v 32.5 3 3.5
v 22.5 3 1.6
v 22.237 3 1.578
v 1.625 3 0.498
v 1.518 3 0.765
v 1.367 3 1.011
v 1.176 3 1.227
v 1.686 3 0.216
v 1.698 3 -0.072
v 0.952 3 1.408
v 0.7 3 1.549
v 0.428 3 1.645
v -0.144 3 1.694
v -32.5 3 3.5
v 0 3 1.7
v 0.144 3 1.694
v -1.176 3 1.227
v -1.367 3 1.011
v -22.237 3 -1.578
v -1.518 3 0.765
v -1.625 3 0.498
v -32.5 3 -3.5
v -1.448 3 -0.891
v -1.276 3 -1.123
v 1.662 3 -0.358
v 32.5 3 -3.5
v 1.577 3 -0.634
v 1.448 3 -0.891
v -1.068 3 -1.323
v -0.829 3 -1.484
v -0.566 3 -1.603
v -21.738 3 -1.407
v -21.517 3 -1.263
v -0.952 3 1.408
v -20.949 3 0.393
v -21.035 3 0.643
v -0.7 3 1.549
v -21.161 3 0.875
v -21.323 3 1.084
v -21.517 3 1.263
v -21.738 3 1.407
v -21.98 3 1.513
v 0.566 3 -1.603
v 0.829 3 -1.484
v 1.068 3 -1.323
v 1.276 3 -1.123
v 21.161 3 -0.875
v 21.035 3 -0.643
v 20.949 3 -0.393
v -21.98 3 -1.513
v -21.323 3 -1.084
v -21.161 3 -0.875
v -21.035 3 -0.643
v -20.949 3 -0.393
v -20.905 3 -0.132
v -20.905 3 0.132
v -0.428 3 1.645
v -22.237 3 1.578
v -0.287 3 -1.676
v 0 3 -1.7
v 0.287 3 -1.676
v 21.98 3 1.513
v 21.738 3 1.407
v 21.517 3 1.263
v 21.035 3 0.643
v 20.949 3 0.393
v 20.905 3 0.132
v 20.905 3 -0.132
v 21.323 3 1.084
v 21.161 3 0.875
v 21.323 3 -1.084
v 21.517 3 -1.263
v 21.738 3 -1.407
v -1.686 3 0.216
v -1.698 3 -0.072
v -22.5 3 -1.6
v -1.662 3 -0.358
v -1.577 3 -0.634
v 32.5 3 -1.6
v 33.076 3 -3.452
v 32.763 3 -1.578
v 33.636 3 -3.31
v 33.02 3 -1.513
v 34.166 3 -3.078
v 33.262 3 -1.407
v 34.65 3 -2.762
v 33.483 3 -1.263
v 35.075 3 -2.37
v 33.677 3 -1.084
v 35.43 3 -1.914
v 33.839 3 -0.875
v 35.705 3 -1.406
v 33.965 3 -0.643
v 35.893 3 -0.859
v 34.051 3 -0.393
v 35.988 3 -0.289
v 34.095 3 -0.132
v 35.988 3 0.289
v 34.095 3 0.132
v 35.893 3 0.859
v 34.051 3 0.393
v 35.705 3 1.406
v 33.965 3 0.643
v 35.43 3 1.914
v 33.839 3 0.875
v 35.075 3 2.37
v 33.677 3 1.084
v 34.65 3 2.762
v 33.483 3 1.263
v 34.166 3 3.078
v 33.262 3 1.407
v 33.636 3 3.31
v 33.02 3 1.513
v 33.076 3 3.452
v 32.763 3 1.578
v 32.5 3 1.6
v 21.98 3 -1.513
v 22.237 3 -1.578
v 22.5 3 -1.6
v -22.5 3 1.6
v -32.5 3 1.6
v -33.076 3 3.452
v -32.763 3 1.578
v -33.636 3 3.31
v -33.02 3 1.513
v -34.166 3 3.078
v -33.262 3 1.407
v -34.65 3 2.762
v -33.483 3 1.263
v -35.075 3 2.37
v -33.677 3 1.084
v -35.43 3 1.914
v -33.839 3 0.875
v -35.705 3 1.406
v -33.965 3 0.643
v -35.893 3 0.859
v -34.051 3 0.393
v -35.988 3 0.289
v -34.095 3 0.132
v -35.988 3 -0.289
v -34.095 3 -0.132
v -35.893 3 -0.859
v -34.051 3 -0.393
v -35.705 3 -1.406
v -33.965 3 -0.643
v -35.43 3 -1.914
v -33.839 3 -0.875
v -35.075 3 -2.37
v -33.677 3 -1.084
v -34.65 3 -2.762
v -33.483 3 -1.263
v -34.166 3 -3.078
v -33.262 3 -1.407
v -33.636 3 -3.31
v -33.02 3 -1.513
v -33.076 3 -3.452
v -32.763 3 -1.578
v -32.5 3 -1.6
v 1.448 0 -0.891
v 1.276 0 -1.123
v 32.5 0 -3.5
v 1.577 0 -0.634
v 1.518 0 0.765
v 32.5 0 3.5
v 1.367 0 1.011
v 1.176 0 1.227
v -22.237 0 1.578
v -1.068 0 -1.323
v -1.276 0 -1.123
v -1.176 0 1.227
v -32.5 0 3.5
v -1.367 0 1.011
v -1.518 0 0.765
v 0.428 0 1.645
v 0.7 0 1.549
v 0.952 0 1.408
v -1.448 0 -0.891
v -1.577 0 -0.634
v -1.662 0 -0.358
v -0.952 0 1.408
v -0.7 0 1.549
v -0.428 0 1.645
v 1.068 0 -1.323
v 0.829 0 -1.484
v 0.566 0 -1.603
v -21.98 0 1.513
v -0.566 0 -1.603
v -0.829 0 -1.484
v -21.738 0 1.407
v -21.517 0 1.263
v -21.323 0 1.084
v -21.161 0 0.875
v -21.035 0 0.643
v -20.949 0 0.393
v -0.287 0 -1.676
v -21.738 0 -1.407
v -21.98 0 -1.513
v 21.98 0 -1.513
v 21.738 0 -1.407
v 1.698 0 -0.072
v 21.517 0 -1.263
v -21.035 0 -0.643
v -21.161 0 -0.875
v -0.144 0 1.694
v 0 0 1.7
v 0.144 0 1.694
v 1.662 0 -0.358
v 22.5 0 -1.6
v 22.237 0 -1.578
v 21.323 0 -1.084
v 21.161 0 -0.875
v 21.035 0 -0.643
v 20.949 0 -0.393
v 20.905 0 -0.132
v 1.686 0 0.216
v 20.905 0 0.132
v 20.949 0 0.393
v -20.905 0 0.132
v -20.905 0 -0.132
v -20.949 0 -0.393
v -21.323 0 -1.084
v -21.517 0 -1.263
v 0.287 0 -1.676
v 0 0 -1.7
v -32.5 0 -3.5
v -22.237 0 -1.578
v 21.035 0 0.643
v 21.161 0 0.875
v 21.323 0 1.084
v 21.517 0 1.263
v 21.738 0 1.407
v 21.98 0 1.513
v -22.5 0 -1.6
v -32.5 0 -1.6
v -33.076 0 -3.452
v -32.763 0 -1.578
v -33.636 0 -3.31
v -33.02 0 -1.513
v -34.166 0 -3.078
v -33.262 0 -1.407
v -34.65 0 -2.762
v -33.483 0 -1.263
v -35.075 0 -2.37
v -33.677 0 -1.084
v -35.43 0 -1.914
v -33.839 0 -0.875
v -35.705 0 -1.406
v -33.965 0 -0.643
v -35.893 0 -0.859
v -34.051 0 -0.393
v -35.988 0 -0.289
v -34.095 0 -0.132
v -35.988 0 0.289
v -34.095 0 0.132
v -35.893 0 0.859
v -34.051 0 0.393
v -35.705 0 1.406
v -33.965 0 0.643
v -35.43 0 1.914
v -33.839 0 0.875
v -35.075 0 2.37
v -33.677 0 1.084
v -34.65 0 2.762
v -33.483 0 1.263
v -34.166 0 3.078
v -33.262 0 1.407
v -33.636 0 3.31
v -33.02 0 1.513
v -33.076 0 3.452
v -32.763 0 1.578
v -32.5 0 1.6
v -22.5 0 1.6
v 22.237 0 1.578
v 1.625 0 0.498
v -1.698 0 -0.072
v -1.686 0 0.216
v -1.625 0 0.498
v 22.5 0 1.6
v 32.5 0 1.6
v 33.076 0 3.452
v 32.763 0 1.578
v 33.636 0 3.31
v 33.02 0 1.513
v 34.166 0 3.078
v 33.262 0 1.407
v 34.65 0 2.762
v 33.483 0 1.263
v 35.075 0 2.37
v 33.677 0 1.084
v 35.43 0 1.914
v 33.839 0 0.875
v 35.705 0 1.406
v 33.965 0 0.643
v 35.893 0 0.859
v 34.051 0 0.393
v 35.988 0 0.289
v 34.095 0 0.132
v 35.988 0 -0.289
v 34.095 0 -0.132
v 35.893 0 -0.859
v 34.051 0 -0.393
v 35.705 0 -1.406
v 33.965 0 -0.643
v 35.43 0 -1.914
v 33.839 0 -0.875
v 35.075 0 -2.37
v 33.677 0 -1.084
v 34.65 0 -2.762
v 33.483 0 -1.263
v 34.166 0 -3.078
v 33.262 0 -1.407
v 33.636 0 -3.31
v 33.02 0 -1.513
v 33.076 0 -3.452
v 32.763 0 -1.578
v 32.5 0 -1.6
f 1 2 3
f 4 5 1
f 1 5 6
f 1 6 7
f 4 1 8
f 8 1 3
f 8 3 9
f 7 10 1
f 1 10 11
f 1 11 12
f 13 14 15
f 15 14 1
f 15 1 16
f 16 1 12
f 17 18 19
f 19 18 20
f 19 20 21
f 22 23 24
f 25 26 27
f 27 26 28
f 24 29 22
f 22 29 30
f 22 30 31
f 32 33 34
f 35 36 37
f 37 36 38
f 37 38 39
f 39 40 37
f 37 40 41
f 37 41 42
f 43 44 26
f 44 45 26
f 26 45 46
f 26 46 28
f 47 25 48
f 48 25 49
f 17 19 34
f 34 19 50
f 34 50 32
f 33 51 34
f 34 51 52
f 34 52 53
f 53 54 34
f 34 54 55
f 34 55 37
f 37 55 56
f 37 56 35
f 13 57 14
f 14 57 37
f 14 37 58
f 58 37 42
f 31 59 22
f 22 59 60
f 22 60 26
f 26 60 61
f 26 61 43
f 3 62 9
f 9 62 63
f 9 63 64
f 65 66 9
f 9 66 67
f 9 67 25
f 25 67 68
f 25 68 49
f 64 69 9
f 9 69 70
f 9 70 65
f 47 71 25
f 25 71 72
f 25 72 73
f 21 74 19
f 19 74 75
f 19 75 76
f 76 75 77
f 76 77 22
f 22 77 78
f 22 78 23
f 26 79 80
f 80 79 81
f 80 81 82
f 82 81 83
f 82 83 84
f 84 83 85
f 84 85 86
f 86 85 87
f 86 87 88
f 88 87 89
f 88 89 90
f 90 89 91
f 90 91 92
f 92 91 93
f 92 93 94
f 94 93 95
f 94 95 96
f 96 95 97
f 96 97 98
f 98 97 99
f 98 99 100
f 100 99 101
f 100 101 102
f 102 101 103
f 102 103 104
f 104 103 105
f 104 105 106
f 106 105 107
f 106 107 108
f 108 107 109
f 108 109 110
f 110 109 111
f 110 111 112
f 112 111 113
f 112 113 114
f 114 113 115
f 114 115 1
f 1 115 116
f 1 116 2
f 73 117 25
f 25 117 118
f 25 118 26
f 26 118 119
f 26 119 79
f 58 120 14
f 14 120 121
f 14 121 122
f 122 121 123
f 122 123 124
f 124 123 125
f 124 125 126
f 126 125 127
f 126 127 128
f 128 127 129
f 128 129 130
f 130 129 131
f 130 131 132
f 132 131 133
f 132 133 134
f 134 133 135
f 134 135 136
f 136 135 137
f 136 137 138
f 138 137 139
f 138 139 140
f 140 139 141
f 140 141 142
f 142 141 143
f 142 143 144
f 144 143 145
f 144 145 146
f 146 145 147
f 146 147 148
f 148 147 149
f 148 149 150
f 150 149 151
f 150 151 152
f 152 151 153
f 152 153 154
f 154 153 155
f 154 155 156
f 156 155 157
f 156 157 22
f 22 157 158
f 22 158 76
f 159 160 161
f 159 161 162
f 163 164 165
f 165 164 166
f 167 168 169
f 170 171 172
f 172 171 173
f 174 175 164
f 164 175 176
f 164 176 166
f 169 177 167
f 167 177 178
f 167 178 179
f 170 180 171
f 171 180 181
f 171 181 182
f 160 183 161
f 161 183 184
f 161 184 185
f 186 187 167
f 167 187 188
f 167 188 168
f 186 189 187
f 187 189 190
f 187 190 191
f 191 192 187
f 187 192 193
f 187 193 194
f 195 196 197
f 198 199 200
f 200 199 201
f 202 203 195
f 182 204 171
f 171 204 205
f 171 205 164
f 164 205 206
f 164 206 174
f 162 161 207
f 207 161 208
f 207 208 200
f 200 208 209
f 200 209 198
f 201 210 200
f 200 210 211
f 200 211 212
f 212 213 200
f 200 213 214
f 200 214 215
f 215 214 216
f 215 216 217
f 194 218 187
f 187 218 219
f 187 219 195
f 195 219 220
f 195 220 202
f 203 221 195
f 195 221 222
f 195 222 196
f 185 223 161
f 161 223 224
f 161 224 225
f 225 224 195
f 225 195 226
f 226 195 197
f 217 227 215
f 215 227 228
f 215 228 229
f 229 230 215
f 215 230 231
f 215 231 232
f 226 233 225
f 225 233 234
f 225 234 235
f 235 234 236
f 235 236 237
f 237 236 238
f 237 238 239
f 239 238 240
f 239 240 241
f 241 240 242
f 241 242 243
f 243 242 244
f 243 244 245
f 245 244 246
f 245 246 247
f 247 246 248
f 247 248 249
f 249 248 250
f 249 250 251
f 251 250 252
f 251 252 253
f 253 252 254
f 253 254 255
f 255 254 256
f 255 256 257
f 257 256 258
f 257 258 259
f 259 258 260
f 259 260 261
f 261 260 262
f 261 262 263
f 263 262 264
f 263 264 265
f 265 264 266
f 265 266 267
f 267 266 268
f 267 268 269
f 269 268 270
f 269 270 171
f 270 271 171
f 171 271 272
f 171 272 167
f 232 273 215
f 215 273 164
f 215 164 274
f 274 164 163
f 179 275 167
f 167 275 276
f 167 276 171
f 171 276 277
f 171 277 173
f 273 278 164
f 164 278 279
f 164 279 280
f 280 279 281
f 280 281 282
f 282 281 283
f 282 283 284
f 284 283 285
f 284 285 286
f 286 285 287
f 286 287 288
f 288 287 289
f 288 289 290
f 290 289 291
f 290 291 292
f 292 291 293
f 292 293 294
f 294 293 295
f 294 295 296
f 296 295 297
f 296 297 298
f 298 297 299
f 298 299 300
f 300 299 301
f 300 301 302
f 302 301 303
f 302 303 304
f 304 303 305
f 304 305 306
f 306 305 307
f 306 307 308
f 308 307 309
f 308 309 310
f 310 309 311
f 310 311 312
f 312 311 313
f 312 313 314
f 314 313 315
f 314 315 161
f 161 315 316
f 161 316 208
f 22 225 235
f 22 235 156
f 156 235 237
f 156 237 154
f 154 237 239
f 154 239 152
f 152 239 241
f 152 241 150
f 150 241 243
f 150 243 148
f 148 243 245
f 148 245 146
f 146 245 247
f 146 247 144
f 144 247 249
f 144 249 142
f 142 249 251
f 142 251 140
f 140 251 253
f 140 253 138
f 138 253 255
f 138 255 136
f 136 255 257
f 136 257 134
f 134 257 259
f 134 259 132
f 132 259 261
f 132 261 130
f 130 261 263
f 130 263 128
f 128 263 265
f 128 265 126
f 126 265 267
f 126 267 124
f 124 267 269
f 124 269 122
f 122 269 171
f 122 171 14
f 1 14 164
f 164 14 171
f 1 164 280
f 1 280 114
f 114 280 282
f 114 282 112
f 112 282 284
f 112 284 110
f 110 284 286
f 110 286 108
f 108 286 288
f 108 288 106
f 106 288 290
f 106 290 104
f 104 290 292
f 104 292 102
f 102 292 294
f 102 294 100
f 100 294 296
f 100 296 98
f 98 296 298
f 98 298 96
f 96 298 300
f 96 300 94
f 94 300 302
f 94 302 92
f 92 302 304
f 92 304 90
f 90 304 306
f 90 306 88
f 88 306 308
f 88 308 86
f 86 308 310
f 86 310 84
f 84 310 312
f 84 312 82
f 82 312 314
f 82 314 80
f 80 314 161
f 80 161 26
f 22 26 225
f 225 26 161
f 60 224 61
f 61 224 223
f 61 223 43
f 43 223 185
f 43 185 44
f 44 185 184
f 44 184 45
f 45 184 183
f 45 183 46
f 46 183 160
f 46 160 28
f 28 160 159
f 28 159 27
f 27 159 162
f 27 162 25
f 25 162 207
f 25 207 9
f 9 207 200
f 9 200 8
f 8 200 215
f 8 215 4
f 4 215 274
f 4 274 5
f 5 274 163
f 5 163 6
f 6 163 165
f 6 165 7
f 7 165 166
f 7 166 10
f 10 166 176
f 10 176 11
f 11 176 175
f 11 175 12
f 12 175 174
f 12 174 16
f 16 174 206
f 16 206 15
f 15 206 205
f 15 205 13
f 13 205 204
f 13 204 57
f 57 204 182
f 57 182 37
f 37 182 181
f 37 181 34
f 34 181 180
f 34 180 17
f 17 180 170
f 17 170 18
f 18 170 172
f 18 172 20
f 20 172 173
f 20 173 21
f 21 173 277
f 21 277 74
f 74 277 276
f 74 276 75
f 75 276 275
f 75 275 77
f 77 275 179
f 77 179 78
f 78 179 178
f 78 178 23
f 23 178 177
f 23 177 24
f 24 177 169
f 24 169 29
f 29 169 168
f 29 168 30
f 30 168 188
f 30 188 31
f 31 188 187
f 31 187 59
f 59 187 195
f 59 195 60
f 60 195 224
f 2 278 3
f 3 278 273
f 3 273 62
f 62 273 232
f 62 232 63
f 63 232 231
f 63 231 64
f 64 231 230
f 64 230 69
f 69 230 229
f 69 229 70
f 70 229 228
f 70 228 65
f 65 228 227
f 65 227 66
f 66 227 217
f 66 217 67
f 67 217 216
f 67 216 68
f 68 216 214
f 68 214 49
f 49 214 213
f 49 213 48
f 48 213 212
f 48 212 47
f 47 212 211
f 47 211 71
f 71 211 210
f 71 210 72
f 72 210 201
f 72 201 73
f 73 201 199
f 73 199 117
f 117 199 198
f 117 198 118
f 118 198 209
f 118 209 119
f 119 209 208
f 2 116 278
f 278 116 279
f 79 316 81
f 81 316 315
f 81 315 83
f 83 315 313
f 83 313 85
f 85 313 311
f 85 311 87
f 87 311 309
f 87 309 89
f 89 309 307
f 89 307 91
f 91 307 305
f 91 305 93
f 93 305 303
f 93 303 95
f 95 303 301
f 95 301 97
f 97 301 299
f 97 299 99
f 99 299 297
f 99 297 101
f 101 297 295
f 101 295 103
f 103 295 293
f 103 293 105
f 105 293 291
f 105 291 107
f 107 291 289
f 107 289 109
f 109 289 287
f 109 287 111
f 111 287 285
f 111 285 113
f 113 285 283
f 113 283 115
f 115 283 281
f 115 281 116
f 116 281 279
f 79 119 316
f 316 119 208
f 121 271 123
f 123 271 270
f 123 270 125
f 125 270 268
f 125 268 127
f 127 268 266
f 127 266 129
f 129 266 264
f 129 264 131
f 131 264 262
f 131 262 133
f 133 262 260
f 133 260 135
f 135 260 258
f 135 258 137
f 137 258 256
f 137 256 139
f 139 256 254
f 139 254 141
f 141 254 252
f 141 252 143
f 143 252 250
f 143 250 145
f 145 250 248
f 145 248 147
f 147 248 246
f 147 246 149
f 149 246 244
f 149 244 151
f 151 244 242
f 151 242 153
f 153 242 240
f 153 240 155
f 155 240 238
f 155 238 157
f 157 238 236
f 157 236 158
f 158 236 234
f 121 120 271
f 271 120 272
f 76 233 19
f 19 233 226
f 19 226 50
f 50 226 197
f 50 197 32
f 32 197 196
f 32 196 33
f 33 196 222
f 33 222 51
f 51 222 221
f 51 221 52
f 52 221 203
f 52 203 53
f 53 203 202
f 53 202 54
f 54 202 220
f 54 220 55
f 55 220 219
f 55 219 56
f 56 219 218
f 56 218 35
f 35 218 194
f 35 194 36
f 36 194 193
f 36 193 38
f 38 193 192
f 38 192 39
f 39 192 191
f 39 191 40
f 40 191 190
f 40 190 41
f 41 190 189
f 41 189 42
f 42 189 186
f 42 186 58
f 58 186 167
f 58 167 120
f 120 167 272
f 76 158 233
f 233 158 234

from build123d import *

# Parameters (mm, degrees)
SKETCH_1_R      = 1.7
EXTRUDE_1_DEPTH = 3


with BuildPart() as part:
    # Эскиз1 → Бобышка-Вытянуть1 (new body)
    with BuildSketch(Plane(origin=(0, 0, 0), x_dir=(1, 0, 0), z_dir=(0, 1, 0))):
        with BuildLine():
            Line((-32.5, 3.5), (32.5, 3.5))
            ThreePointArc((32.5, 3.5), (36, 0), (32.5, -3.5))
            Line((32.5, -3.5), (-32.5, -3.5))
            ThreePointArc((-32.5, -3.5), (-36, 0), (-32.5, 3.5))
        make_face()
        Circle(SKETCH_1_R, mode=Mode.SUBTRACT)
        with BuildLine():
            Line((-32.5, -1.6), (-22.5, -1.6))
            ThreePointArc((-22.5, -1.6), (-20.9, 0), (-22.5, 1.6))
            Line((-22.5, 1.6), (-32.5, 1.6))
            ThreePointArc((-32.5, 1.6), (-34.1, 0), (-32.5, -1.6))
        make_face(mode=Mode.SUBTRACT)
        with BuildLine():
            Line((22.5, 1.6), (32.5, 1.6))
            ThreePointArc((32.5, 1.6), (34.1, 0), (32.5, -1.6))
            Line((32.5, -1.6), (22.5, -1.6))
            ThreePointArc((22.5, -1.6), (20.9, 0), (22.5, 1.6))
        make_face(mode=Mode.SUBTRACT)
    extrude(amount=EXTRUDE_1_DEPTH)


solid = part.part
